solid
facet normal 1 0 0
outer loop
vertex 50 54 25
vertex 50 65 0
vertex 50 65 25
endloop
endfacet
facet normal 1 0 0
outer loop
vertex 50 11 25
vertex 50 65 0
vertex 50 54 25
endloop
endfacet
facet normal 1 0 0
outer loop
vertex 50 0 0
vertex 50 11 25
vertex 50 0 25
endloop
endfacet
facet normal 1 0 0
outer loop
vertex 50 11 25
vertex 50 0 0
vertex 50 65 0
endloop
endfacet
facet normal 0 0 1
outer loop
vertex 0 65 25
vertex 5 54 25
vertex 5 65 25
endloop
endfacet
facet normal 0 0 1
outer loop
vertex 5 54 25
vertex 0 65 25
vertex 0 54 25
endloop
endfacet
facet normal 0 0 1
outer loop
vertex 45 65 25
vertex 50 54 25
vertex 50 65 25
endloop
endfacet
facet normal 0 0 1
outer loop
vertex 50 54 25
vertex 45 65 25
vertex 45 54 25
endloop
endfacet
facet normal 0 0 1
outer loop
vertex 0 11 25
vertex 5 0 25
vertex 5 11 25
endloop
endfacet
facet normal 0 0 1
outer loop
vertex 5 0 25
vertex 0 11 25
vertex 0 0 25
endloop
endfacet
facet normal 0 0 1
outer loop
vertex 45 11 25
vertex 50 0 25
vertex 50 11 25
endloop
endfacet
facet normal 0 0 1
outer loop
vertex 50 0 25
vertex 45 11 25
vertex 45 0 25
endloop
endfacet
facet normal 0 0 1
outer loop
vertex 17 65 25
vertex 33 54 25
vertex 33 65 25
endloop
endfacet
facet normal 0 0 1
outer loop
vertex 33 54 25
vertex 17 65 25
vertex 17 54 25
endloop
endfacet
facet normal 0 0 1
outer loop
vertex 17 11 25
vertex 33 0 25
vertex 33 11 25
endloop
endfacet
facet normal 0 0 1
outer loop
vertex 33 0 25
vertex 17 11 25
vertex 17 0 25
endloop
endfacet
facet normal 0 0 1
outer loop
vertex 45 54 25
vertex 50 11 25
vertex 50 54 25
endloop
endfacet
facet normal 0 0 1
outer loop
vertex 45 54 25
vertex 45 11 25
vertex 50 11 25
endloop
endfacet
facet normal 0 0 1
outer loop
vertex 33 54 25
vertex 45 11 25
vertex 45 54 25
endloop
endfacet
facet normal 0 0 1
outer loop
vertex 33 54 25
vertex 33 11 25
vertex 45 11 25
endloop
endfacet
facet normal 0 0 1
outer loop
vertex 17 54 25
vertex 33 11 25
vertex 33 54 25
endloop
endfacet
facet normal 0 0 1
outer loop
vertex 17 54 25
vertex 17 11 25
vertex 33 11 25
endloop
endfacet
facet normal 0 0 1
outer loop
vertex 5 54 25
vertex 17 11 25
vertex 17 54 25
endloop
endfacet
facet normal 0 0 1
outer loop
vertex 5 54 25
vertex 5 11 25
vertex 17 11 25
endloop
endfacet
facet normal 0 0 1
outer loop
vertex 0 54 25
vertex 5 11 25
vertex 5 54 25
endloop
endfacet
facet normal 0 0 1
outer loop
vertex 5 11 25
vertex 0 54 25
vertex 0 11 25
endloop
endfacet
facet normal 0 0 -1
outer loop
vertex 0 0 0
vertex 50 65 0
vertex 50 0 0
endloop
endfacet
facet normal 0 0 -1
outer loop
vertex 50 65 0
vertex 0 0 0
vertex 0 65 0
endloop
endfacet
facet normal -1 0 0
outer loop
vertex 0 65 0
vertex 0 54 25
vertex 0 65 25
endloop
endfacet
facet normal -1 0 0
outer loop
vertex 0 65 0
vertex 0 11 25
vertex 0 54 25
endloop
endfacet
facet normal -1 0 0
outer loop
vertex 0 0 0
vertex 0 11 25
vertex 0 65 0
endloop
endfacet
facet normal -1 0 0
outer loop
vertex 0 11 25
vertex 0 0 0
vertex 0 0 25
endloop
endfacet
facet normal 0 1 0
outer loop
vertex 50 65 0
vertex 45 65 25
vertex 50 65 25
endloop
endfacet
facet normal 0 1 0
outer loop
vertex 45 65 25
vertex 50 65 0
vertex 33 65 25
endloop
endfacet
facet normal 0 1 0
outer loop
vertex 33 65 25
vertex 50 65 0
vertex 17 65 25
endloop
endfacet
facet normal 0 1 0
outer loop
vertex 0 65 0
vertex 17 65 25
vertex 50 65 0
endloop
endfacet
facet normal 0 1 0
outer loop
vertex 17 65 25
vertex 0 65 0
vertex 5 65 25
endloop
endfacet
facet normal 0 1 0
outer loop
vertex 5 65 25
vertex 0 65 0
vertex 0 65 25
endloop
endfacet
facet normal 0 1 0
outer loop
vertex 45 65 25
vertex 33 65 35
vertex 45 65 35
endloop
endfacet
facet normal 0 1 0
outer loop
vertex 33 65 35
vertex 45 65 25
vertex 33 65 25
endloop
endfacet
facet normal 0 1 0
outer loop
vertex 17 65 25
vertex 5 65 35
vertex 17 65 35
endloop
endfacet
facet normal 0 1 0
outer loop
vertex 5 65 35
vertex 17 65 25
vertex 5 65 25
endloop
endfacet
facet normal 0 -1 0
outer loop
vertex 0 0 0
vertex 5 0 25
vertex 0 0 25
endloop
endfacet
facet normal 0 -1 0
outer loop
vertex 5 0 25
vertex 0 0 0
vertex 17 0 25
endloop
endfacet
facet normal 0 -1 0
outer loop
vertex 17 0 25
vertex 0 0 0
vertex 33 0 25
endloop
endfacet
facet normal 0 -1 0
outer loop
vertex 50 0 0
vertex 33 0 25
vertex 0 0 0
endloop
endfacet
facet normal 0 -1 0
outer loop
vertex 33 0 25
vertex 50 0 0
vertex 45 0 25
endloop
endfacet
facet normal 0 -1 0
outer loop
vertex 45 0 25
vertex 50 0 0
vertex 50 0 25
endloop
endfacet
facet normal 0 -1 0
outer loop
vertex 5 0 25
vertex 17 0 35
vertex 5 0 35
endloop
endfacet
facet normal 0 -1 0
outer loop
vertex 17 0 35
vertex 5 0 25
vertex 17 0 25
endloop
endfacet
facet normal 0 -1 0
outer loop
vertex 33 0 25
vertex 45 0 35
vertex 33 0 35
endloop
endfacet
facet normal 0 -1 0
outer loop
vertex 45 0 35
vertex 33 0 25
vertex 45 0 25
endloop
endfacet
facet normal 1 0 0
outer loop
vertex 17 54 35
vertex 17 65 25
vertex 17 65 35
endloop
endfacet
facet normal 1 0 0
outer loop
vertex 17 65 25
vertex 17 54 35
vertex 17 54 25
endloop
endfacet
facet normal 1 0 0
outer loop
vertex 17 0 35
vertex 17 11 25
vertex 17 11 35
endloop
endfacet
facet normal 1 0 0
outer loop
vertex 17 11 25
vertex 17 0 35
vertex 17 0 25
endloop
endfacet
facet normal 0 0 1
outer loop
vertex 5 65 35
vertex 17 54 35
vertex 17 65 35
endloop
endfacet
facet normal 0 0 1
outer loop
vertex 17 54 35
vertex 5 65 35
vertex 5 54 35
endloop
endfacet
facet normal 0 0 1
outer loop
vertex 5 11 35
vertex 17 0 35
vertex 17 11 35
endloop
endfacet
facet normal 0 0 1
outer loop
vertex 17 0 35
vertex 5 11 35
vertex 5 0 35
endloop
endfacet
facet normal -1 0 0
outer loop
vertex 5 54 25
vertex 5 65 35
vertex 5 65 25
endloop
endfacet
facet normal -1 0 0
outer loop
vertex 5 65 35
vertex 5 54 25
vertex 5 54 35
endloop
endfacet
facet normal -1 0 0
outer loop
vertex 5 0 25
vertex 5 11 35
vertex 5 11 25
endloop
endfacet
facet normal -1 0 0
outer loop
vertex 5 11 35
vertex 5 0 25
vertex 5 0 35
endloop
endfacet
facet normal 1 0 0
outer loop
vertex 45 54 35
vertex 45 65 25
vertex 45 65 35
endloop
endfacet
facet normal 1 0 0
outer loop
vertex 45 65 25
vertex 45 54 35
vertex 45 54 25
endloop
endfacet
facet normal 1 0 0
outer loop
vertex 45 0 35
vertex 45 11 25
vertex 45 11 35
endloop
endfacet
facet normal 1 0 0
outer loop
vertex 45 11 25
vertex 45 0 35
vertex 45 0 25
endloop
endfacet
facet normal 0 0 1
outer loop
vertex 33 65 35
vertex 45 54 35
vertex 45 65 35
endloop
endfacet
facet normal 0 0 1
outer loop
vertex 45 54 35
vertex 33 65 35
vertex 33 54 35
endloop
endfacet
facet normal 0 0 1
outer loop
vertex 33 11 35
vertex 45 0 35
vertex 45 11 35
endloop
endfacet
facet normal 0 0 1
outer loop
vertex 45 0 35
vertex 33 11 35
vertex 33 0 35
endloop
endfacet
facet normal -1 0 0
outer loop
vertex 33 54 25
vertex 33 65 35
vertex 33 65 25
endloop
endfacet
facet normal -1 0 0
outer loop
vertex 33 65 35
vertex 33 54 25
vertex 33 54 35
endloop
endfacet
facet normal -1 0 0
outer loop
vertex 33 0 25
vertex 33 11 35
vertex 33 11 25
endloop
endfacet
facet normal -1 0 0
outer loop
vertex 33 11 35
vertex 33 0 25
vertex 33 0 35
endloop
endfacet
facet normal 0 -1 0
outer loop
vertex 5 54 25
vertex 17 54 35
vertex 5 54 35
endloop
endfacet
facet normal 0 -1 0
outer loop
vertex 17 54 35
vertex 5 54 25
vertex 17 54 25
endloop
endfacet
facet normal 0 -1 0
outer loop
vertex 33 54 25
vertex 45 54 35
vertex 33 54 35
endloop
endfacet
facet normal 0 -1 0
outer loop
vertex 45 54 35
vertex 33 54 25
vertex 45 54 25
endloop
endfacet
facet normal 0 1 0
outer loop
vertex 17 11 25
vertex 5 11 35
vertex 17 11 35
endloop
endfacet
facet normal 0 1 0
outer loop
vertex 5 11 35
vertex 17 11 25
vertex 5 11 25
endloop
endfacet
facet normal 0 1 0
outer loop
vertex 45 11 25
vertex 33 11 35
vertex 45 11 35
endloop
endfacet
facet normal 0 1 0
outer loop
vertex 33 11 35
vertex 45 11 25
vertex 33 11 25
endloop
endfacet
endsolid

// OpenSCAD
// mounting stand for robot

mountLength = 65;
mountWidth = 50;
baseHeight = 25;
bladeEnd = 11;

module blade(x) {
  translate([x, 0, baseHeight-1])
  cube([12, mountLength, bladeEnd]);  
};

difference() {
    union() {
        cube([50, mountLength, baseHeight]);
        blade(5);
        blade(33);   
    }
    translate([0, bladeEnd, baseHeight]) cube([mountWidth, mountLength-(2*bladeEnd), baseHeight]);
}
